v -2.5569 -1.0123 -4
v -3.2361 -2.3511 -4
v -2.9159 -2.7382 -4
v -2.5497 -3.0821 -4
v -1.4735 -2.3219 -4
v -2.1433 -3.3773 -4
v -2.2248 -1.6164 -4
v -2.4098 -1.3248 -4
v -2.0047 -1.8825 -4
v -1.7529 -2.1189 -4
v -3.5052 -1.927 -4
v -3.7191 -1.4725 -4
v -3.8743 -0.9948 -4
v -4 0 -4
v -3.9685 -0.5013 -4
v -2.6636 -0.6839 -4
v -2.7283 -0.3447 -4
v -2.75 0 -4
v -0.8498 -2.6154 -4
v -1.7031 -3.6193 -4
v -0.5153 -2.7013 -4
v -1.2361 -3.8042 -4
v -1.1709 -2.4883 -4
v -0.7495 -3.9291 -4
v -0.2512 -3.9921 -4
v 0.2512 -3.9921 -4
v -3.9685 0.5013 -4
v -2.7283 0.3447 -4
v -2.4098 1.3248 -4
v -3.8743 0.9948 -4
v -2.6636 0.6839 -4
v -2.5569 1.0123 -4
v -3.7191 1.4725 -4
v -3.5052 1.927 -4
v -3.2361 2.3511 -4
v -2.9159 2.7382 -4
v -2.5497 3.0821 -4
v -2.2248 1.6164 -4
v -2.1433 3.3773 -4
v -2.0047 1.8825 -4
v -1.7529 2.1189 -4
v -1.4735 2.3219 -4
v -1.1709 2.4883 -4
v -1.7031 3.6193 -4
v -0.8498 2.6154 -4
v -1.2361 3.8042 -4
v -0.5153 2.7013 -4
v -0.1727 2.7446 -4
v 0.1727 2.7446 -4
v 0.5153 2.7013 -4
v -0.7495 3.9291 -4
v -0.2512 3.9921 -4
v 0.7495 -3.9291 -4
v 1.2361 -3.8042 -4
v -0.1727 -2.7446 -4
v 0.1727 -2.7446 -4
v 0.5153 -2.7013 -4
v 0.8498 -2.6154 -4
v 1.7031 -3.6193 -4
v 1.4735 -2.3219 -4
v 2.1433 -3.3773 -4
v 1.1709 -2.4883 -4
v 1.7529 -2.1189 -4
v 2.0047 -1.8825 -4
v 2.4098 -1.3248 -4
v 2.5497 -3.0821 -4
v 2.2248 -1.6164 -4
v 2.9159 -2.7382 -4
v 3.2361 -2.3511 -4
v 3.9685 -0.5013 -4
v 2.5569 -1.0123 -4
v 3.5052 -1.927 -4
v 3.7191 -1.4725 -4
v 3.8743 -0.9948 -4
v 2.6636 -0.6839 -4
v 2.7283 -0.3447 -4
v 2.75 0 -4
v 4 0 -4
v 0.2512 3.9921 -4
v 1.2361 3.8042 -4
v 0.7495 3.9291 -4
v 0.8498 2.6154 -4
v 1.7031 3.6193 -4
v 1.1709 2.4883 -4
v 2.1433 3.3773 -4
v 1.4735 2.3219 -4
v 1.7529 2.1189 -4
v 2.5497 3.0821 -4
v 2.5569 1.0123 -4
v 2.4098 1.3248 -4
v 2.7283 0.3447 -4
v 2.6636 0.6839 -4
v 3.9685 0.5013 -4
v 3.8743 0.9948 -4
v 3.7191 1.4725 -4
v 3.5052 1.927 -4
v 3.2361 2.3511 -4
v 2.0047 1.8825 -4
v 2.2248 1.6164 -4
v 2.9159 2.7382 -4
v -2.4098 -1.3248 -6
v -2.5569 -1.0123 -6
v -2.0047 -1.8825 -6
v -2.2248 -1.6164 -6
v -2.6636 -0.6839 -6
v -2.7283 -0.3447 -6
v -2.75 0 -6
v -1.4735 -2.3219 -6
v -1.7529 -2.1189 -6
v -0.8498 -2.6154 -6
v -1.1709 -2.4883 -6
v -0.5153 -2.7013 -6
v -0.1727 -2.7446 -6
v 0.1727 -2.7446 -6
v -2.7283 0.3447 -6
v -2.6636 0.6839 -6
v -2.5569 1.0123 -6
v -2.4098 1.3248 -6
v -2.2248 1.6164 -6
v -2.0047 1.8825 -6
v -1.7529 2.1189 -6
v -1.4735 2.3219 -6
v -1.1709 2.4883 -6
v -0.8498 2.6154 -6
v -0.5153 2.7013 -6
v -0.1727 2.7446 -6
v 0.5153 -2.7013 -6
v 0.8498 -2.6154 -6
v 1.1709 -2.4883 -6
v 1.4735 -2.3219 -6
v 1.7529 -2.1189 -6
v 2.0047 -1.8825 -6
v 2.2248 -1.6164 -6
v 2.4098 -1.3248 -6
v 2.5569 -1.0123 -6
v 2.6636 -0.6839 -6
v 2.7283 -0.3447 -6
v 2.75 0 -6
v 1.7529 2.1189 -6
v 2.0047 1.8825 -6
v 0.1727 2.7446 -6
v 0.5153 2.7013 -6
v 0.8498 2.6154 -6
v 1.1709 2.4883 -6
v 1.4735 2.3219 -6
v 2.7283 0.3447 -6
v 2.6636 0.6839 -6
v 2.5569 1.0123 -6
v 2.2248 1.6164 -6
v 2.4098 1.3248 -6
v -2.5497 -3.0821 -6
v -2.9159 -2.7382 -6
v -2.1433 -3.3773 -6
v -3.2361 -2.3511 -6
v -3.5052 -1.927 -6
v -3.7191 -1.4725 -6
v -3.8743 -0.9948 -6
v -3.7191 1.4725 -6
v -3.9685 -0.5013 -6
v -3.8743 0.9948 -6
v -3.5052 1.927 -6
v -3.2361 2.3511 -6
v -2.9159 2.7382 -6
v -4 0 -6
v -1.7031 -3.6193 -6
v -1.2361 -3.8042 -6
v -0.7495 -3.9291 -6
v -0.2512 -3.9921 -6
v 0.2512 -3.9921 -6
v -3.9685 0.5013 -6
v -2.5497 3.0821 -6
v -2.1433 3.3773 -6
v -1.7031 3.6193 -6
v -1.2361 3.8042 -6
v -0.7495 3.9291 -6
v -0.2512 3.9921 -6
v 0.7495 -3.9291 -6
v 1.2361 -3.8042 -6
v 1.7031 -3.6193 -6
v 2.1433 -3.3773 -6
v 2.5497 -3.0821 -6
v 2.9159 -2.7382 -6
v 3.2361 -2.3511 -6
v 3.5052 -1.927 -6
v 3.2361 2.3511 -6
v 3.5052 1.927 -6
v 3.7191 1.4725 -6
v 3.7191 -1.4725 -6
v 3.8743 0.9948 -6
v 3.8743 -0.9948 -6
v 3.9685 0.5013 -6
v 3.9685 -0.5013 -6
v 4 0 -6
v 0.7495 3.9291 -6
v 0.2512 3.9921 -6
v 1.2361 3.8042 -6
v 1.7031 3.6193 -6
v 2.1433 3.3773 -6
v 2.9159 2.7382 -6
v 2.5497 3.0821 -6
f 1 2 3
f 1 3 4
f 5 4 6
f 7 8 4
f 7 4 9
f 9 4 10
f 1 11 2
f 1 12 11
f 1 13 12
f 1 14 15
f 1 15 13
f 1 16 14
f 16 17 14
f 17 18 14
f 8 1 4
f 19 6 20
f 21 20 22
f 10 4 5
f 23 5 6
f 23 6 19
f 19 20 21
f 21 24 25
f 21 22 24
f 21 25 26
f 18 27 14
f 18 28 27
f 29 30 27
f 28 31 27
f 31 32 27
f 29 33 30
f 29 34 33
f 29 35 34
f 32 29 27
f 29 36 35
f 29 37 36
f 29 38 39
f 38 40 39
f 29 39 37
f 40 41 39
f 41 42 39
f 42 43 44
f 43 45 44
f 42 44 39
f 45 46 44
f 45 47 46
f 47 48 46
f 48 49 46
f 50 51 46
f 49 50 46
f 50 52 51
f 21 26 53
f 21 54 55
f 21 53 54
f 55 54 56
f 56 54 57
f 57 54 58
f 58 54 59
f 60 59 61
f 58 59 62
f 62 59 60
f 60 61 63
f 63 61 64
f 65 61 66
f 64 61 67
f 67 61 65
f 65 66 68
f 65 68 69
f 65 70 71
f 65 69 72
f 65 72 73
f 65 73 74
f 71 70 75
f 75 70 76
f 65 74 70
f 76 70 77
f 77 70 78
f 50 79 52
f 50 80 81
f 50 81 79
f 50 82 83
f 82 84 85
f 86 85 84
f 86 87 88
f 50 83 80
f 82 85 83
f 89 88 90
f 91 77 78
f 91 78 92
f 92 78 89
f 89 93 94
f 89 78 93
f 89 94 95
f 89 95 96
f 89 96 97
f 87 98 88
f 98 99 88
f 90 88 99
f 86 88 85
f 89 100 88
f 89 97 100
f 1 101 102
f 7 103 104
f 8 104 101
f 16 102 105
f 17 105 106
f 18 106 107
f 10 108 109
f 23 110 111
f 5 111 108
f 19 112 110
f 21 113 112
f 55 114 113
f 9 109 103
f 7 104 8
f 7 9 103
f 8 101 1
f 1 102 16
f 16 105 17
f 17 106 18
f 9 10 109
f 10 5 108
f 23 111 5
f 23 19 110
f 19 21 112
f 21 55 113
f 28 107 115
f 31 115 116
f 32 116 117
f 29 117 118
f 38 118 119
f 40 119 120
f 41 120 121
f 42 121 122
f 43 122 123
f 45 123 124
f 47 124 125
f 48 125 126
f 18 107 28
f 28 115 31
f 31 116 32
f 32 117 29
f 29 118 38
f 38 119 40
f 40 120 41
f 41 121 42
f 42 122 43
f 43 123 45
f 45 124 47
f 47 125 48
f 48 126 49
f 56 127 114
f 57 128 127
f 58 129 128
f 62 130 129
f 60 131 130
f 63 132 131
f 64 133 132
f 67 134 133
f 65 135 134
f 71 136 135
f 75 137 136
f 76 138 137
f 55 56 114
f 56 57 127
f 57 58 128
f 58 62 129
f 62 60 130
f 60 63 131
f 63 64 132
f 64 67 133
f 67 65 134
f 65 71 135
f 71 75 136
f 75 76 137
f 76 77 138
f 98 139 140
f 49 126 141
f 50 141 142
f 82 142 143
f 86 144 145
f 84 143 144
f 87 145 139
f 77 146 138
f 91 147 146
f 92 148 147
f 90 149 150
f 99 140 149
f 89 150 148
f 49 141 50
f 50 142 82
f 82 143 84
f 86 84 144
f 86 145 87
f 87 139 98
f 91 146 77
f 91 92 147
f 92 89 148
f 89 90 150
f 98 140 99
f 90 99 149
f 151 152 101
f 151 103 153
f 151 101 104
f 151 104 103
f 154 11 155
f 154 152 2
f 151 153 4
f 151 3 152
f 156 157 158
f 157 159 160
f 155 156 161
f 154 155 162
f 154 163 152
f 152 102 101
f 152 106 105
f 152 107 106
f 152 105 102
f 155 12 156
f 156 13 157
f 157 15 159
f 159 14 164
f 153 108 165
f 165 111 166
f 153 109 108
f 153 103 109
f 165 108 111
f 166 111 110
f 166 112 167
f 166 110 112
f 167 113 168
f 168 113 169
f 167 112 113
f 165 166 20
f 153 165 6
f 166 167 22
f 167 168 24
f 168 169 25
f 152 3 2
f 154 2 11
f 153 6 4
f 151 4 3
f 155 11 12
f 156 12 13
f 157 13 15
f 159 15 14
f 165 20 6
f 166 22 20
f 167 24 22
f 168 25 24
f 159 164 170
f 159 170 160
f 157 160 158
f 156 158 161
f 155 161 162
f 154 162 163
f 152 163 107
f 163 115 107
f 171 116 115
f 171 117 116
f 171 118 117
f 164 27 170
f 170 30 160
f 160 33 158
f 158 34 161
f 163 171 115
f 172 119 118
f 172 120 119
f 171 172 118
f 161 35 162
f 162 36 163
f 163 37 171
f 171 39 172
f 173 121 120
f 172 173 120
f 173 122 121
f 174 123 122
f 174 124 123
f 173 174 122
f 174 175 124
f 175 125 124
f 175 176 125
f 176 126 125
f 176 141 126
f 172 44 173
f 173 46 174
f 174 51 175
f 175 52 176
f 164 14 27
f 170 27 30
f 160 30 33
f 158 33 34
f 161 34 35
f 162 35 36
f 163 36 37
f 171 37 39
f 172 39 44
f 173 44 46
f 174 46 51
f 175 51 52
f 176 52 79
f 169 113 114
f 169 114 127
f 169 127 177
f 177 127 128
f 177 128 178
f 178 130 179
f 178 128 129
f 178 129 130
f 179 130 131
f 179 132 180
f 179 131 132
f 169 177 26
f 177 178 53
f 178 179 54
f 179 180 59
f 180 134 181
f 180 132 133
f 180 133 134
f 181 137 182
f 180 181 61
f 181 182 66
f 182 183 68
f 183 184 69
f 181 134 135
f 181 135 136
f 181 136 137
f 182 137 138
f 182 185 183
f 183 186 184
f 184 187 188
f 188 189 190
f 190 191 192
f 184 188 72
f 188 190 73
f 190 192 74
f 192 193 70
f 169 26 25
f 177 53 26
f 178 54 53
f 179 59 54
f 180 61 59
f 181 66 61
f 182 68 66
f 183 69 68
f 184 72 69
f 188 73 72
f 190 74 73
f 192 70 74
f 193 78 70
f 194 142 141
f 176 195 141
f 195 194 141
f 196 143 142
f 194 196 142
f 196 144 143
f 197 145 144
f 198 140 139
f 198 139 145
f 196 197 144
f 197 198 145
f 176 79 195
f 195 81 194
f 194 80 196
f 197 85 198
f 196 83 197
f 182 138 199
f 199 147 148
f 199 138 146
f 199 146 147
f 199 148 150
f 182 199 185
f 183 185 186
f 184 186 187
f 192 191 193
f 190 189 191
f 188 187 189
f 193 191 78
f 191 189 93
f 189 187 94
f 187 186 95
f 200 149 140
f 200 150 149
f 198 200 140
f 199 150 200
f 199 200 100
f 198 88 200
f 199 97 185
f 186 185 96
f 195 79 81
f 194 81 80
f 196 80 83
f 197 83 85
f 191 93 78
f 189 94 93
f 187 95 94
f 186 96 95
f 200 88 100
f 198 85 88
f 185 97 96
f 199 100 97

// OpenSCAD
$fn = 50;

difference() {
	union() {
		translate(v = [0, 0, -6.0]) {
			cylinder(h = 9.0, r = 4.0);
		}
	}
	union() {
		translate(v = [0, 0, 0]) {
			rotate(a = [0, 0, 0]) {
				difference() {
					union() {
						translate(v = [0, 0, -4]) {
							linear_extrude(height = 4) {
								polygon(points = [[4.8468, 0.0], [2.4234000000000004, 4.197451927062417], [-2.423399999999999, 4.197451927062417], [-4.8468, 5.935618106107392e-16], [-2.423400000000002, -4.197451927062416], [2.423399999999997, -4.197451927062419]]);
							}
						}
					}
					union();
				}
			}
		}
		#cylinder(h = 3, r = 6.25);
		#translate(v = [0, 0, -100.0]) {
			cylinder(h = 200, r = 2.75);
		}
	}
}
